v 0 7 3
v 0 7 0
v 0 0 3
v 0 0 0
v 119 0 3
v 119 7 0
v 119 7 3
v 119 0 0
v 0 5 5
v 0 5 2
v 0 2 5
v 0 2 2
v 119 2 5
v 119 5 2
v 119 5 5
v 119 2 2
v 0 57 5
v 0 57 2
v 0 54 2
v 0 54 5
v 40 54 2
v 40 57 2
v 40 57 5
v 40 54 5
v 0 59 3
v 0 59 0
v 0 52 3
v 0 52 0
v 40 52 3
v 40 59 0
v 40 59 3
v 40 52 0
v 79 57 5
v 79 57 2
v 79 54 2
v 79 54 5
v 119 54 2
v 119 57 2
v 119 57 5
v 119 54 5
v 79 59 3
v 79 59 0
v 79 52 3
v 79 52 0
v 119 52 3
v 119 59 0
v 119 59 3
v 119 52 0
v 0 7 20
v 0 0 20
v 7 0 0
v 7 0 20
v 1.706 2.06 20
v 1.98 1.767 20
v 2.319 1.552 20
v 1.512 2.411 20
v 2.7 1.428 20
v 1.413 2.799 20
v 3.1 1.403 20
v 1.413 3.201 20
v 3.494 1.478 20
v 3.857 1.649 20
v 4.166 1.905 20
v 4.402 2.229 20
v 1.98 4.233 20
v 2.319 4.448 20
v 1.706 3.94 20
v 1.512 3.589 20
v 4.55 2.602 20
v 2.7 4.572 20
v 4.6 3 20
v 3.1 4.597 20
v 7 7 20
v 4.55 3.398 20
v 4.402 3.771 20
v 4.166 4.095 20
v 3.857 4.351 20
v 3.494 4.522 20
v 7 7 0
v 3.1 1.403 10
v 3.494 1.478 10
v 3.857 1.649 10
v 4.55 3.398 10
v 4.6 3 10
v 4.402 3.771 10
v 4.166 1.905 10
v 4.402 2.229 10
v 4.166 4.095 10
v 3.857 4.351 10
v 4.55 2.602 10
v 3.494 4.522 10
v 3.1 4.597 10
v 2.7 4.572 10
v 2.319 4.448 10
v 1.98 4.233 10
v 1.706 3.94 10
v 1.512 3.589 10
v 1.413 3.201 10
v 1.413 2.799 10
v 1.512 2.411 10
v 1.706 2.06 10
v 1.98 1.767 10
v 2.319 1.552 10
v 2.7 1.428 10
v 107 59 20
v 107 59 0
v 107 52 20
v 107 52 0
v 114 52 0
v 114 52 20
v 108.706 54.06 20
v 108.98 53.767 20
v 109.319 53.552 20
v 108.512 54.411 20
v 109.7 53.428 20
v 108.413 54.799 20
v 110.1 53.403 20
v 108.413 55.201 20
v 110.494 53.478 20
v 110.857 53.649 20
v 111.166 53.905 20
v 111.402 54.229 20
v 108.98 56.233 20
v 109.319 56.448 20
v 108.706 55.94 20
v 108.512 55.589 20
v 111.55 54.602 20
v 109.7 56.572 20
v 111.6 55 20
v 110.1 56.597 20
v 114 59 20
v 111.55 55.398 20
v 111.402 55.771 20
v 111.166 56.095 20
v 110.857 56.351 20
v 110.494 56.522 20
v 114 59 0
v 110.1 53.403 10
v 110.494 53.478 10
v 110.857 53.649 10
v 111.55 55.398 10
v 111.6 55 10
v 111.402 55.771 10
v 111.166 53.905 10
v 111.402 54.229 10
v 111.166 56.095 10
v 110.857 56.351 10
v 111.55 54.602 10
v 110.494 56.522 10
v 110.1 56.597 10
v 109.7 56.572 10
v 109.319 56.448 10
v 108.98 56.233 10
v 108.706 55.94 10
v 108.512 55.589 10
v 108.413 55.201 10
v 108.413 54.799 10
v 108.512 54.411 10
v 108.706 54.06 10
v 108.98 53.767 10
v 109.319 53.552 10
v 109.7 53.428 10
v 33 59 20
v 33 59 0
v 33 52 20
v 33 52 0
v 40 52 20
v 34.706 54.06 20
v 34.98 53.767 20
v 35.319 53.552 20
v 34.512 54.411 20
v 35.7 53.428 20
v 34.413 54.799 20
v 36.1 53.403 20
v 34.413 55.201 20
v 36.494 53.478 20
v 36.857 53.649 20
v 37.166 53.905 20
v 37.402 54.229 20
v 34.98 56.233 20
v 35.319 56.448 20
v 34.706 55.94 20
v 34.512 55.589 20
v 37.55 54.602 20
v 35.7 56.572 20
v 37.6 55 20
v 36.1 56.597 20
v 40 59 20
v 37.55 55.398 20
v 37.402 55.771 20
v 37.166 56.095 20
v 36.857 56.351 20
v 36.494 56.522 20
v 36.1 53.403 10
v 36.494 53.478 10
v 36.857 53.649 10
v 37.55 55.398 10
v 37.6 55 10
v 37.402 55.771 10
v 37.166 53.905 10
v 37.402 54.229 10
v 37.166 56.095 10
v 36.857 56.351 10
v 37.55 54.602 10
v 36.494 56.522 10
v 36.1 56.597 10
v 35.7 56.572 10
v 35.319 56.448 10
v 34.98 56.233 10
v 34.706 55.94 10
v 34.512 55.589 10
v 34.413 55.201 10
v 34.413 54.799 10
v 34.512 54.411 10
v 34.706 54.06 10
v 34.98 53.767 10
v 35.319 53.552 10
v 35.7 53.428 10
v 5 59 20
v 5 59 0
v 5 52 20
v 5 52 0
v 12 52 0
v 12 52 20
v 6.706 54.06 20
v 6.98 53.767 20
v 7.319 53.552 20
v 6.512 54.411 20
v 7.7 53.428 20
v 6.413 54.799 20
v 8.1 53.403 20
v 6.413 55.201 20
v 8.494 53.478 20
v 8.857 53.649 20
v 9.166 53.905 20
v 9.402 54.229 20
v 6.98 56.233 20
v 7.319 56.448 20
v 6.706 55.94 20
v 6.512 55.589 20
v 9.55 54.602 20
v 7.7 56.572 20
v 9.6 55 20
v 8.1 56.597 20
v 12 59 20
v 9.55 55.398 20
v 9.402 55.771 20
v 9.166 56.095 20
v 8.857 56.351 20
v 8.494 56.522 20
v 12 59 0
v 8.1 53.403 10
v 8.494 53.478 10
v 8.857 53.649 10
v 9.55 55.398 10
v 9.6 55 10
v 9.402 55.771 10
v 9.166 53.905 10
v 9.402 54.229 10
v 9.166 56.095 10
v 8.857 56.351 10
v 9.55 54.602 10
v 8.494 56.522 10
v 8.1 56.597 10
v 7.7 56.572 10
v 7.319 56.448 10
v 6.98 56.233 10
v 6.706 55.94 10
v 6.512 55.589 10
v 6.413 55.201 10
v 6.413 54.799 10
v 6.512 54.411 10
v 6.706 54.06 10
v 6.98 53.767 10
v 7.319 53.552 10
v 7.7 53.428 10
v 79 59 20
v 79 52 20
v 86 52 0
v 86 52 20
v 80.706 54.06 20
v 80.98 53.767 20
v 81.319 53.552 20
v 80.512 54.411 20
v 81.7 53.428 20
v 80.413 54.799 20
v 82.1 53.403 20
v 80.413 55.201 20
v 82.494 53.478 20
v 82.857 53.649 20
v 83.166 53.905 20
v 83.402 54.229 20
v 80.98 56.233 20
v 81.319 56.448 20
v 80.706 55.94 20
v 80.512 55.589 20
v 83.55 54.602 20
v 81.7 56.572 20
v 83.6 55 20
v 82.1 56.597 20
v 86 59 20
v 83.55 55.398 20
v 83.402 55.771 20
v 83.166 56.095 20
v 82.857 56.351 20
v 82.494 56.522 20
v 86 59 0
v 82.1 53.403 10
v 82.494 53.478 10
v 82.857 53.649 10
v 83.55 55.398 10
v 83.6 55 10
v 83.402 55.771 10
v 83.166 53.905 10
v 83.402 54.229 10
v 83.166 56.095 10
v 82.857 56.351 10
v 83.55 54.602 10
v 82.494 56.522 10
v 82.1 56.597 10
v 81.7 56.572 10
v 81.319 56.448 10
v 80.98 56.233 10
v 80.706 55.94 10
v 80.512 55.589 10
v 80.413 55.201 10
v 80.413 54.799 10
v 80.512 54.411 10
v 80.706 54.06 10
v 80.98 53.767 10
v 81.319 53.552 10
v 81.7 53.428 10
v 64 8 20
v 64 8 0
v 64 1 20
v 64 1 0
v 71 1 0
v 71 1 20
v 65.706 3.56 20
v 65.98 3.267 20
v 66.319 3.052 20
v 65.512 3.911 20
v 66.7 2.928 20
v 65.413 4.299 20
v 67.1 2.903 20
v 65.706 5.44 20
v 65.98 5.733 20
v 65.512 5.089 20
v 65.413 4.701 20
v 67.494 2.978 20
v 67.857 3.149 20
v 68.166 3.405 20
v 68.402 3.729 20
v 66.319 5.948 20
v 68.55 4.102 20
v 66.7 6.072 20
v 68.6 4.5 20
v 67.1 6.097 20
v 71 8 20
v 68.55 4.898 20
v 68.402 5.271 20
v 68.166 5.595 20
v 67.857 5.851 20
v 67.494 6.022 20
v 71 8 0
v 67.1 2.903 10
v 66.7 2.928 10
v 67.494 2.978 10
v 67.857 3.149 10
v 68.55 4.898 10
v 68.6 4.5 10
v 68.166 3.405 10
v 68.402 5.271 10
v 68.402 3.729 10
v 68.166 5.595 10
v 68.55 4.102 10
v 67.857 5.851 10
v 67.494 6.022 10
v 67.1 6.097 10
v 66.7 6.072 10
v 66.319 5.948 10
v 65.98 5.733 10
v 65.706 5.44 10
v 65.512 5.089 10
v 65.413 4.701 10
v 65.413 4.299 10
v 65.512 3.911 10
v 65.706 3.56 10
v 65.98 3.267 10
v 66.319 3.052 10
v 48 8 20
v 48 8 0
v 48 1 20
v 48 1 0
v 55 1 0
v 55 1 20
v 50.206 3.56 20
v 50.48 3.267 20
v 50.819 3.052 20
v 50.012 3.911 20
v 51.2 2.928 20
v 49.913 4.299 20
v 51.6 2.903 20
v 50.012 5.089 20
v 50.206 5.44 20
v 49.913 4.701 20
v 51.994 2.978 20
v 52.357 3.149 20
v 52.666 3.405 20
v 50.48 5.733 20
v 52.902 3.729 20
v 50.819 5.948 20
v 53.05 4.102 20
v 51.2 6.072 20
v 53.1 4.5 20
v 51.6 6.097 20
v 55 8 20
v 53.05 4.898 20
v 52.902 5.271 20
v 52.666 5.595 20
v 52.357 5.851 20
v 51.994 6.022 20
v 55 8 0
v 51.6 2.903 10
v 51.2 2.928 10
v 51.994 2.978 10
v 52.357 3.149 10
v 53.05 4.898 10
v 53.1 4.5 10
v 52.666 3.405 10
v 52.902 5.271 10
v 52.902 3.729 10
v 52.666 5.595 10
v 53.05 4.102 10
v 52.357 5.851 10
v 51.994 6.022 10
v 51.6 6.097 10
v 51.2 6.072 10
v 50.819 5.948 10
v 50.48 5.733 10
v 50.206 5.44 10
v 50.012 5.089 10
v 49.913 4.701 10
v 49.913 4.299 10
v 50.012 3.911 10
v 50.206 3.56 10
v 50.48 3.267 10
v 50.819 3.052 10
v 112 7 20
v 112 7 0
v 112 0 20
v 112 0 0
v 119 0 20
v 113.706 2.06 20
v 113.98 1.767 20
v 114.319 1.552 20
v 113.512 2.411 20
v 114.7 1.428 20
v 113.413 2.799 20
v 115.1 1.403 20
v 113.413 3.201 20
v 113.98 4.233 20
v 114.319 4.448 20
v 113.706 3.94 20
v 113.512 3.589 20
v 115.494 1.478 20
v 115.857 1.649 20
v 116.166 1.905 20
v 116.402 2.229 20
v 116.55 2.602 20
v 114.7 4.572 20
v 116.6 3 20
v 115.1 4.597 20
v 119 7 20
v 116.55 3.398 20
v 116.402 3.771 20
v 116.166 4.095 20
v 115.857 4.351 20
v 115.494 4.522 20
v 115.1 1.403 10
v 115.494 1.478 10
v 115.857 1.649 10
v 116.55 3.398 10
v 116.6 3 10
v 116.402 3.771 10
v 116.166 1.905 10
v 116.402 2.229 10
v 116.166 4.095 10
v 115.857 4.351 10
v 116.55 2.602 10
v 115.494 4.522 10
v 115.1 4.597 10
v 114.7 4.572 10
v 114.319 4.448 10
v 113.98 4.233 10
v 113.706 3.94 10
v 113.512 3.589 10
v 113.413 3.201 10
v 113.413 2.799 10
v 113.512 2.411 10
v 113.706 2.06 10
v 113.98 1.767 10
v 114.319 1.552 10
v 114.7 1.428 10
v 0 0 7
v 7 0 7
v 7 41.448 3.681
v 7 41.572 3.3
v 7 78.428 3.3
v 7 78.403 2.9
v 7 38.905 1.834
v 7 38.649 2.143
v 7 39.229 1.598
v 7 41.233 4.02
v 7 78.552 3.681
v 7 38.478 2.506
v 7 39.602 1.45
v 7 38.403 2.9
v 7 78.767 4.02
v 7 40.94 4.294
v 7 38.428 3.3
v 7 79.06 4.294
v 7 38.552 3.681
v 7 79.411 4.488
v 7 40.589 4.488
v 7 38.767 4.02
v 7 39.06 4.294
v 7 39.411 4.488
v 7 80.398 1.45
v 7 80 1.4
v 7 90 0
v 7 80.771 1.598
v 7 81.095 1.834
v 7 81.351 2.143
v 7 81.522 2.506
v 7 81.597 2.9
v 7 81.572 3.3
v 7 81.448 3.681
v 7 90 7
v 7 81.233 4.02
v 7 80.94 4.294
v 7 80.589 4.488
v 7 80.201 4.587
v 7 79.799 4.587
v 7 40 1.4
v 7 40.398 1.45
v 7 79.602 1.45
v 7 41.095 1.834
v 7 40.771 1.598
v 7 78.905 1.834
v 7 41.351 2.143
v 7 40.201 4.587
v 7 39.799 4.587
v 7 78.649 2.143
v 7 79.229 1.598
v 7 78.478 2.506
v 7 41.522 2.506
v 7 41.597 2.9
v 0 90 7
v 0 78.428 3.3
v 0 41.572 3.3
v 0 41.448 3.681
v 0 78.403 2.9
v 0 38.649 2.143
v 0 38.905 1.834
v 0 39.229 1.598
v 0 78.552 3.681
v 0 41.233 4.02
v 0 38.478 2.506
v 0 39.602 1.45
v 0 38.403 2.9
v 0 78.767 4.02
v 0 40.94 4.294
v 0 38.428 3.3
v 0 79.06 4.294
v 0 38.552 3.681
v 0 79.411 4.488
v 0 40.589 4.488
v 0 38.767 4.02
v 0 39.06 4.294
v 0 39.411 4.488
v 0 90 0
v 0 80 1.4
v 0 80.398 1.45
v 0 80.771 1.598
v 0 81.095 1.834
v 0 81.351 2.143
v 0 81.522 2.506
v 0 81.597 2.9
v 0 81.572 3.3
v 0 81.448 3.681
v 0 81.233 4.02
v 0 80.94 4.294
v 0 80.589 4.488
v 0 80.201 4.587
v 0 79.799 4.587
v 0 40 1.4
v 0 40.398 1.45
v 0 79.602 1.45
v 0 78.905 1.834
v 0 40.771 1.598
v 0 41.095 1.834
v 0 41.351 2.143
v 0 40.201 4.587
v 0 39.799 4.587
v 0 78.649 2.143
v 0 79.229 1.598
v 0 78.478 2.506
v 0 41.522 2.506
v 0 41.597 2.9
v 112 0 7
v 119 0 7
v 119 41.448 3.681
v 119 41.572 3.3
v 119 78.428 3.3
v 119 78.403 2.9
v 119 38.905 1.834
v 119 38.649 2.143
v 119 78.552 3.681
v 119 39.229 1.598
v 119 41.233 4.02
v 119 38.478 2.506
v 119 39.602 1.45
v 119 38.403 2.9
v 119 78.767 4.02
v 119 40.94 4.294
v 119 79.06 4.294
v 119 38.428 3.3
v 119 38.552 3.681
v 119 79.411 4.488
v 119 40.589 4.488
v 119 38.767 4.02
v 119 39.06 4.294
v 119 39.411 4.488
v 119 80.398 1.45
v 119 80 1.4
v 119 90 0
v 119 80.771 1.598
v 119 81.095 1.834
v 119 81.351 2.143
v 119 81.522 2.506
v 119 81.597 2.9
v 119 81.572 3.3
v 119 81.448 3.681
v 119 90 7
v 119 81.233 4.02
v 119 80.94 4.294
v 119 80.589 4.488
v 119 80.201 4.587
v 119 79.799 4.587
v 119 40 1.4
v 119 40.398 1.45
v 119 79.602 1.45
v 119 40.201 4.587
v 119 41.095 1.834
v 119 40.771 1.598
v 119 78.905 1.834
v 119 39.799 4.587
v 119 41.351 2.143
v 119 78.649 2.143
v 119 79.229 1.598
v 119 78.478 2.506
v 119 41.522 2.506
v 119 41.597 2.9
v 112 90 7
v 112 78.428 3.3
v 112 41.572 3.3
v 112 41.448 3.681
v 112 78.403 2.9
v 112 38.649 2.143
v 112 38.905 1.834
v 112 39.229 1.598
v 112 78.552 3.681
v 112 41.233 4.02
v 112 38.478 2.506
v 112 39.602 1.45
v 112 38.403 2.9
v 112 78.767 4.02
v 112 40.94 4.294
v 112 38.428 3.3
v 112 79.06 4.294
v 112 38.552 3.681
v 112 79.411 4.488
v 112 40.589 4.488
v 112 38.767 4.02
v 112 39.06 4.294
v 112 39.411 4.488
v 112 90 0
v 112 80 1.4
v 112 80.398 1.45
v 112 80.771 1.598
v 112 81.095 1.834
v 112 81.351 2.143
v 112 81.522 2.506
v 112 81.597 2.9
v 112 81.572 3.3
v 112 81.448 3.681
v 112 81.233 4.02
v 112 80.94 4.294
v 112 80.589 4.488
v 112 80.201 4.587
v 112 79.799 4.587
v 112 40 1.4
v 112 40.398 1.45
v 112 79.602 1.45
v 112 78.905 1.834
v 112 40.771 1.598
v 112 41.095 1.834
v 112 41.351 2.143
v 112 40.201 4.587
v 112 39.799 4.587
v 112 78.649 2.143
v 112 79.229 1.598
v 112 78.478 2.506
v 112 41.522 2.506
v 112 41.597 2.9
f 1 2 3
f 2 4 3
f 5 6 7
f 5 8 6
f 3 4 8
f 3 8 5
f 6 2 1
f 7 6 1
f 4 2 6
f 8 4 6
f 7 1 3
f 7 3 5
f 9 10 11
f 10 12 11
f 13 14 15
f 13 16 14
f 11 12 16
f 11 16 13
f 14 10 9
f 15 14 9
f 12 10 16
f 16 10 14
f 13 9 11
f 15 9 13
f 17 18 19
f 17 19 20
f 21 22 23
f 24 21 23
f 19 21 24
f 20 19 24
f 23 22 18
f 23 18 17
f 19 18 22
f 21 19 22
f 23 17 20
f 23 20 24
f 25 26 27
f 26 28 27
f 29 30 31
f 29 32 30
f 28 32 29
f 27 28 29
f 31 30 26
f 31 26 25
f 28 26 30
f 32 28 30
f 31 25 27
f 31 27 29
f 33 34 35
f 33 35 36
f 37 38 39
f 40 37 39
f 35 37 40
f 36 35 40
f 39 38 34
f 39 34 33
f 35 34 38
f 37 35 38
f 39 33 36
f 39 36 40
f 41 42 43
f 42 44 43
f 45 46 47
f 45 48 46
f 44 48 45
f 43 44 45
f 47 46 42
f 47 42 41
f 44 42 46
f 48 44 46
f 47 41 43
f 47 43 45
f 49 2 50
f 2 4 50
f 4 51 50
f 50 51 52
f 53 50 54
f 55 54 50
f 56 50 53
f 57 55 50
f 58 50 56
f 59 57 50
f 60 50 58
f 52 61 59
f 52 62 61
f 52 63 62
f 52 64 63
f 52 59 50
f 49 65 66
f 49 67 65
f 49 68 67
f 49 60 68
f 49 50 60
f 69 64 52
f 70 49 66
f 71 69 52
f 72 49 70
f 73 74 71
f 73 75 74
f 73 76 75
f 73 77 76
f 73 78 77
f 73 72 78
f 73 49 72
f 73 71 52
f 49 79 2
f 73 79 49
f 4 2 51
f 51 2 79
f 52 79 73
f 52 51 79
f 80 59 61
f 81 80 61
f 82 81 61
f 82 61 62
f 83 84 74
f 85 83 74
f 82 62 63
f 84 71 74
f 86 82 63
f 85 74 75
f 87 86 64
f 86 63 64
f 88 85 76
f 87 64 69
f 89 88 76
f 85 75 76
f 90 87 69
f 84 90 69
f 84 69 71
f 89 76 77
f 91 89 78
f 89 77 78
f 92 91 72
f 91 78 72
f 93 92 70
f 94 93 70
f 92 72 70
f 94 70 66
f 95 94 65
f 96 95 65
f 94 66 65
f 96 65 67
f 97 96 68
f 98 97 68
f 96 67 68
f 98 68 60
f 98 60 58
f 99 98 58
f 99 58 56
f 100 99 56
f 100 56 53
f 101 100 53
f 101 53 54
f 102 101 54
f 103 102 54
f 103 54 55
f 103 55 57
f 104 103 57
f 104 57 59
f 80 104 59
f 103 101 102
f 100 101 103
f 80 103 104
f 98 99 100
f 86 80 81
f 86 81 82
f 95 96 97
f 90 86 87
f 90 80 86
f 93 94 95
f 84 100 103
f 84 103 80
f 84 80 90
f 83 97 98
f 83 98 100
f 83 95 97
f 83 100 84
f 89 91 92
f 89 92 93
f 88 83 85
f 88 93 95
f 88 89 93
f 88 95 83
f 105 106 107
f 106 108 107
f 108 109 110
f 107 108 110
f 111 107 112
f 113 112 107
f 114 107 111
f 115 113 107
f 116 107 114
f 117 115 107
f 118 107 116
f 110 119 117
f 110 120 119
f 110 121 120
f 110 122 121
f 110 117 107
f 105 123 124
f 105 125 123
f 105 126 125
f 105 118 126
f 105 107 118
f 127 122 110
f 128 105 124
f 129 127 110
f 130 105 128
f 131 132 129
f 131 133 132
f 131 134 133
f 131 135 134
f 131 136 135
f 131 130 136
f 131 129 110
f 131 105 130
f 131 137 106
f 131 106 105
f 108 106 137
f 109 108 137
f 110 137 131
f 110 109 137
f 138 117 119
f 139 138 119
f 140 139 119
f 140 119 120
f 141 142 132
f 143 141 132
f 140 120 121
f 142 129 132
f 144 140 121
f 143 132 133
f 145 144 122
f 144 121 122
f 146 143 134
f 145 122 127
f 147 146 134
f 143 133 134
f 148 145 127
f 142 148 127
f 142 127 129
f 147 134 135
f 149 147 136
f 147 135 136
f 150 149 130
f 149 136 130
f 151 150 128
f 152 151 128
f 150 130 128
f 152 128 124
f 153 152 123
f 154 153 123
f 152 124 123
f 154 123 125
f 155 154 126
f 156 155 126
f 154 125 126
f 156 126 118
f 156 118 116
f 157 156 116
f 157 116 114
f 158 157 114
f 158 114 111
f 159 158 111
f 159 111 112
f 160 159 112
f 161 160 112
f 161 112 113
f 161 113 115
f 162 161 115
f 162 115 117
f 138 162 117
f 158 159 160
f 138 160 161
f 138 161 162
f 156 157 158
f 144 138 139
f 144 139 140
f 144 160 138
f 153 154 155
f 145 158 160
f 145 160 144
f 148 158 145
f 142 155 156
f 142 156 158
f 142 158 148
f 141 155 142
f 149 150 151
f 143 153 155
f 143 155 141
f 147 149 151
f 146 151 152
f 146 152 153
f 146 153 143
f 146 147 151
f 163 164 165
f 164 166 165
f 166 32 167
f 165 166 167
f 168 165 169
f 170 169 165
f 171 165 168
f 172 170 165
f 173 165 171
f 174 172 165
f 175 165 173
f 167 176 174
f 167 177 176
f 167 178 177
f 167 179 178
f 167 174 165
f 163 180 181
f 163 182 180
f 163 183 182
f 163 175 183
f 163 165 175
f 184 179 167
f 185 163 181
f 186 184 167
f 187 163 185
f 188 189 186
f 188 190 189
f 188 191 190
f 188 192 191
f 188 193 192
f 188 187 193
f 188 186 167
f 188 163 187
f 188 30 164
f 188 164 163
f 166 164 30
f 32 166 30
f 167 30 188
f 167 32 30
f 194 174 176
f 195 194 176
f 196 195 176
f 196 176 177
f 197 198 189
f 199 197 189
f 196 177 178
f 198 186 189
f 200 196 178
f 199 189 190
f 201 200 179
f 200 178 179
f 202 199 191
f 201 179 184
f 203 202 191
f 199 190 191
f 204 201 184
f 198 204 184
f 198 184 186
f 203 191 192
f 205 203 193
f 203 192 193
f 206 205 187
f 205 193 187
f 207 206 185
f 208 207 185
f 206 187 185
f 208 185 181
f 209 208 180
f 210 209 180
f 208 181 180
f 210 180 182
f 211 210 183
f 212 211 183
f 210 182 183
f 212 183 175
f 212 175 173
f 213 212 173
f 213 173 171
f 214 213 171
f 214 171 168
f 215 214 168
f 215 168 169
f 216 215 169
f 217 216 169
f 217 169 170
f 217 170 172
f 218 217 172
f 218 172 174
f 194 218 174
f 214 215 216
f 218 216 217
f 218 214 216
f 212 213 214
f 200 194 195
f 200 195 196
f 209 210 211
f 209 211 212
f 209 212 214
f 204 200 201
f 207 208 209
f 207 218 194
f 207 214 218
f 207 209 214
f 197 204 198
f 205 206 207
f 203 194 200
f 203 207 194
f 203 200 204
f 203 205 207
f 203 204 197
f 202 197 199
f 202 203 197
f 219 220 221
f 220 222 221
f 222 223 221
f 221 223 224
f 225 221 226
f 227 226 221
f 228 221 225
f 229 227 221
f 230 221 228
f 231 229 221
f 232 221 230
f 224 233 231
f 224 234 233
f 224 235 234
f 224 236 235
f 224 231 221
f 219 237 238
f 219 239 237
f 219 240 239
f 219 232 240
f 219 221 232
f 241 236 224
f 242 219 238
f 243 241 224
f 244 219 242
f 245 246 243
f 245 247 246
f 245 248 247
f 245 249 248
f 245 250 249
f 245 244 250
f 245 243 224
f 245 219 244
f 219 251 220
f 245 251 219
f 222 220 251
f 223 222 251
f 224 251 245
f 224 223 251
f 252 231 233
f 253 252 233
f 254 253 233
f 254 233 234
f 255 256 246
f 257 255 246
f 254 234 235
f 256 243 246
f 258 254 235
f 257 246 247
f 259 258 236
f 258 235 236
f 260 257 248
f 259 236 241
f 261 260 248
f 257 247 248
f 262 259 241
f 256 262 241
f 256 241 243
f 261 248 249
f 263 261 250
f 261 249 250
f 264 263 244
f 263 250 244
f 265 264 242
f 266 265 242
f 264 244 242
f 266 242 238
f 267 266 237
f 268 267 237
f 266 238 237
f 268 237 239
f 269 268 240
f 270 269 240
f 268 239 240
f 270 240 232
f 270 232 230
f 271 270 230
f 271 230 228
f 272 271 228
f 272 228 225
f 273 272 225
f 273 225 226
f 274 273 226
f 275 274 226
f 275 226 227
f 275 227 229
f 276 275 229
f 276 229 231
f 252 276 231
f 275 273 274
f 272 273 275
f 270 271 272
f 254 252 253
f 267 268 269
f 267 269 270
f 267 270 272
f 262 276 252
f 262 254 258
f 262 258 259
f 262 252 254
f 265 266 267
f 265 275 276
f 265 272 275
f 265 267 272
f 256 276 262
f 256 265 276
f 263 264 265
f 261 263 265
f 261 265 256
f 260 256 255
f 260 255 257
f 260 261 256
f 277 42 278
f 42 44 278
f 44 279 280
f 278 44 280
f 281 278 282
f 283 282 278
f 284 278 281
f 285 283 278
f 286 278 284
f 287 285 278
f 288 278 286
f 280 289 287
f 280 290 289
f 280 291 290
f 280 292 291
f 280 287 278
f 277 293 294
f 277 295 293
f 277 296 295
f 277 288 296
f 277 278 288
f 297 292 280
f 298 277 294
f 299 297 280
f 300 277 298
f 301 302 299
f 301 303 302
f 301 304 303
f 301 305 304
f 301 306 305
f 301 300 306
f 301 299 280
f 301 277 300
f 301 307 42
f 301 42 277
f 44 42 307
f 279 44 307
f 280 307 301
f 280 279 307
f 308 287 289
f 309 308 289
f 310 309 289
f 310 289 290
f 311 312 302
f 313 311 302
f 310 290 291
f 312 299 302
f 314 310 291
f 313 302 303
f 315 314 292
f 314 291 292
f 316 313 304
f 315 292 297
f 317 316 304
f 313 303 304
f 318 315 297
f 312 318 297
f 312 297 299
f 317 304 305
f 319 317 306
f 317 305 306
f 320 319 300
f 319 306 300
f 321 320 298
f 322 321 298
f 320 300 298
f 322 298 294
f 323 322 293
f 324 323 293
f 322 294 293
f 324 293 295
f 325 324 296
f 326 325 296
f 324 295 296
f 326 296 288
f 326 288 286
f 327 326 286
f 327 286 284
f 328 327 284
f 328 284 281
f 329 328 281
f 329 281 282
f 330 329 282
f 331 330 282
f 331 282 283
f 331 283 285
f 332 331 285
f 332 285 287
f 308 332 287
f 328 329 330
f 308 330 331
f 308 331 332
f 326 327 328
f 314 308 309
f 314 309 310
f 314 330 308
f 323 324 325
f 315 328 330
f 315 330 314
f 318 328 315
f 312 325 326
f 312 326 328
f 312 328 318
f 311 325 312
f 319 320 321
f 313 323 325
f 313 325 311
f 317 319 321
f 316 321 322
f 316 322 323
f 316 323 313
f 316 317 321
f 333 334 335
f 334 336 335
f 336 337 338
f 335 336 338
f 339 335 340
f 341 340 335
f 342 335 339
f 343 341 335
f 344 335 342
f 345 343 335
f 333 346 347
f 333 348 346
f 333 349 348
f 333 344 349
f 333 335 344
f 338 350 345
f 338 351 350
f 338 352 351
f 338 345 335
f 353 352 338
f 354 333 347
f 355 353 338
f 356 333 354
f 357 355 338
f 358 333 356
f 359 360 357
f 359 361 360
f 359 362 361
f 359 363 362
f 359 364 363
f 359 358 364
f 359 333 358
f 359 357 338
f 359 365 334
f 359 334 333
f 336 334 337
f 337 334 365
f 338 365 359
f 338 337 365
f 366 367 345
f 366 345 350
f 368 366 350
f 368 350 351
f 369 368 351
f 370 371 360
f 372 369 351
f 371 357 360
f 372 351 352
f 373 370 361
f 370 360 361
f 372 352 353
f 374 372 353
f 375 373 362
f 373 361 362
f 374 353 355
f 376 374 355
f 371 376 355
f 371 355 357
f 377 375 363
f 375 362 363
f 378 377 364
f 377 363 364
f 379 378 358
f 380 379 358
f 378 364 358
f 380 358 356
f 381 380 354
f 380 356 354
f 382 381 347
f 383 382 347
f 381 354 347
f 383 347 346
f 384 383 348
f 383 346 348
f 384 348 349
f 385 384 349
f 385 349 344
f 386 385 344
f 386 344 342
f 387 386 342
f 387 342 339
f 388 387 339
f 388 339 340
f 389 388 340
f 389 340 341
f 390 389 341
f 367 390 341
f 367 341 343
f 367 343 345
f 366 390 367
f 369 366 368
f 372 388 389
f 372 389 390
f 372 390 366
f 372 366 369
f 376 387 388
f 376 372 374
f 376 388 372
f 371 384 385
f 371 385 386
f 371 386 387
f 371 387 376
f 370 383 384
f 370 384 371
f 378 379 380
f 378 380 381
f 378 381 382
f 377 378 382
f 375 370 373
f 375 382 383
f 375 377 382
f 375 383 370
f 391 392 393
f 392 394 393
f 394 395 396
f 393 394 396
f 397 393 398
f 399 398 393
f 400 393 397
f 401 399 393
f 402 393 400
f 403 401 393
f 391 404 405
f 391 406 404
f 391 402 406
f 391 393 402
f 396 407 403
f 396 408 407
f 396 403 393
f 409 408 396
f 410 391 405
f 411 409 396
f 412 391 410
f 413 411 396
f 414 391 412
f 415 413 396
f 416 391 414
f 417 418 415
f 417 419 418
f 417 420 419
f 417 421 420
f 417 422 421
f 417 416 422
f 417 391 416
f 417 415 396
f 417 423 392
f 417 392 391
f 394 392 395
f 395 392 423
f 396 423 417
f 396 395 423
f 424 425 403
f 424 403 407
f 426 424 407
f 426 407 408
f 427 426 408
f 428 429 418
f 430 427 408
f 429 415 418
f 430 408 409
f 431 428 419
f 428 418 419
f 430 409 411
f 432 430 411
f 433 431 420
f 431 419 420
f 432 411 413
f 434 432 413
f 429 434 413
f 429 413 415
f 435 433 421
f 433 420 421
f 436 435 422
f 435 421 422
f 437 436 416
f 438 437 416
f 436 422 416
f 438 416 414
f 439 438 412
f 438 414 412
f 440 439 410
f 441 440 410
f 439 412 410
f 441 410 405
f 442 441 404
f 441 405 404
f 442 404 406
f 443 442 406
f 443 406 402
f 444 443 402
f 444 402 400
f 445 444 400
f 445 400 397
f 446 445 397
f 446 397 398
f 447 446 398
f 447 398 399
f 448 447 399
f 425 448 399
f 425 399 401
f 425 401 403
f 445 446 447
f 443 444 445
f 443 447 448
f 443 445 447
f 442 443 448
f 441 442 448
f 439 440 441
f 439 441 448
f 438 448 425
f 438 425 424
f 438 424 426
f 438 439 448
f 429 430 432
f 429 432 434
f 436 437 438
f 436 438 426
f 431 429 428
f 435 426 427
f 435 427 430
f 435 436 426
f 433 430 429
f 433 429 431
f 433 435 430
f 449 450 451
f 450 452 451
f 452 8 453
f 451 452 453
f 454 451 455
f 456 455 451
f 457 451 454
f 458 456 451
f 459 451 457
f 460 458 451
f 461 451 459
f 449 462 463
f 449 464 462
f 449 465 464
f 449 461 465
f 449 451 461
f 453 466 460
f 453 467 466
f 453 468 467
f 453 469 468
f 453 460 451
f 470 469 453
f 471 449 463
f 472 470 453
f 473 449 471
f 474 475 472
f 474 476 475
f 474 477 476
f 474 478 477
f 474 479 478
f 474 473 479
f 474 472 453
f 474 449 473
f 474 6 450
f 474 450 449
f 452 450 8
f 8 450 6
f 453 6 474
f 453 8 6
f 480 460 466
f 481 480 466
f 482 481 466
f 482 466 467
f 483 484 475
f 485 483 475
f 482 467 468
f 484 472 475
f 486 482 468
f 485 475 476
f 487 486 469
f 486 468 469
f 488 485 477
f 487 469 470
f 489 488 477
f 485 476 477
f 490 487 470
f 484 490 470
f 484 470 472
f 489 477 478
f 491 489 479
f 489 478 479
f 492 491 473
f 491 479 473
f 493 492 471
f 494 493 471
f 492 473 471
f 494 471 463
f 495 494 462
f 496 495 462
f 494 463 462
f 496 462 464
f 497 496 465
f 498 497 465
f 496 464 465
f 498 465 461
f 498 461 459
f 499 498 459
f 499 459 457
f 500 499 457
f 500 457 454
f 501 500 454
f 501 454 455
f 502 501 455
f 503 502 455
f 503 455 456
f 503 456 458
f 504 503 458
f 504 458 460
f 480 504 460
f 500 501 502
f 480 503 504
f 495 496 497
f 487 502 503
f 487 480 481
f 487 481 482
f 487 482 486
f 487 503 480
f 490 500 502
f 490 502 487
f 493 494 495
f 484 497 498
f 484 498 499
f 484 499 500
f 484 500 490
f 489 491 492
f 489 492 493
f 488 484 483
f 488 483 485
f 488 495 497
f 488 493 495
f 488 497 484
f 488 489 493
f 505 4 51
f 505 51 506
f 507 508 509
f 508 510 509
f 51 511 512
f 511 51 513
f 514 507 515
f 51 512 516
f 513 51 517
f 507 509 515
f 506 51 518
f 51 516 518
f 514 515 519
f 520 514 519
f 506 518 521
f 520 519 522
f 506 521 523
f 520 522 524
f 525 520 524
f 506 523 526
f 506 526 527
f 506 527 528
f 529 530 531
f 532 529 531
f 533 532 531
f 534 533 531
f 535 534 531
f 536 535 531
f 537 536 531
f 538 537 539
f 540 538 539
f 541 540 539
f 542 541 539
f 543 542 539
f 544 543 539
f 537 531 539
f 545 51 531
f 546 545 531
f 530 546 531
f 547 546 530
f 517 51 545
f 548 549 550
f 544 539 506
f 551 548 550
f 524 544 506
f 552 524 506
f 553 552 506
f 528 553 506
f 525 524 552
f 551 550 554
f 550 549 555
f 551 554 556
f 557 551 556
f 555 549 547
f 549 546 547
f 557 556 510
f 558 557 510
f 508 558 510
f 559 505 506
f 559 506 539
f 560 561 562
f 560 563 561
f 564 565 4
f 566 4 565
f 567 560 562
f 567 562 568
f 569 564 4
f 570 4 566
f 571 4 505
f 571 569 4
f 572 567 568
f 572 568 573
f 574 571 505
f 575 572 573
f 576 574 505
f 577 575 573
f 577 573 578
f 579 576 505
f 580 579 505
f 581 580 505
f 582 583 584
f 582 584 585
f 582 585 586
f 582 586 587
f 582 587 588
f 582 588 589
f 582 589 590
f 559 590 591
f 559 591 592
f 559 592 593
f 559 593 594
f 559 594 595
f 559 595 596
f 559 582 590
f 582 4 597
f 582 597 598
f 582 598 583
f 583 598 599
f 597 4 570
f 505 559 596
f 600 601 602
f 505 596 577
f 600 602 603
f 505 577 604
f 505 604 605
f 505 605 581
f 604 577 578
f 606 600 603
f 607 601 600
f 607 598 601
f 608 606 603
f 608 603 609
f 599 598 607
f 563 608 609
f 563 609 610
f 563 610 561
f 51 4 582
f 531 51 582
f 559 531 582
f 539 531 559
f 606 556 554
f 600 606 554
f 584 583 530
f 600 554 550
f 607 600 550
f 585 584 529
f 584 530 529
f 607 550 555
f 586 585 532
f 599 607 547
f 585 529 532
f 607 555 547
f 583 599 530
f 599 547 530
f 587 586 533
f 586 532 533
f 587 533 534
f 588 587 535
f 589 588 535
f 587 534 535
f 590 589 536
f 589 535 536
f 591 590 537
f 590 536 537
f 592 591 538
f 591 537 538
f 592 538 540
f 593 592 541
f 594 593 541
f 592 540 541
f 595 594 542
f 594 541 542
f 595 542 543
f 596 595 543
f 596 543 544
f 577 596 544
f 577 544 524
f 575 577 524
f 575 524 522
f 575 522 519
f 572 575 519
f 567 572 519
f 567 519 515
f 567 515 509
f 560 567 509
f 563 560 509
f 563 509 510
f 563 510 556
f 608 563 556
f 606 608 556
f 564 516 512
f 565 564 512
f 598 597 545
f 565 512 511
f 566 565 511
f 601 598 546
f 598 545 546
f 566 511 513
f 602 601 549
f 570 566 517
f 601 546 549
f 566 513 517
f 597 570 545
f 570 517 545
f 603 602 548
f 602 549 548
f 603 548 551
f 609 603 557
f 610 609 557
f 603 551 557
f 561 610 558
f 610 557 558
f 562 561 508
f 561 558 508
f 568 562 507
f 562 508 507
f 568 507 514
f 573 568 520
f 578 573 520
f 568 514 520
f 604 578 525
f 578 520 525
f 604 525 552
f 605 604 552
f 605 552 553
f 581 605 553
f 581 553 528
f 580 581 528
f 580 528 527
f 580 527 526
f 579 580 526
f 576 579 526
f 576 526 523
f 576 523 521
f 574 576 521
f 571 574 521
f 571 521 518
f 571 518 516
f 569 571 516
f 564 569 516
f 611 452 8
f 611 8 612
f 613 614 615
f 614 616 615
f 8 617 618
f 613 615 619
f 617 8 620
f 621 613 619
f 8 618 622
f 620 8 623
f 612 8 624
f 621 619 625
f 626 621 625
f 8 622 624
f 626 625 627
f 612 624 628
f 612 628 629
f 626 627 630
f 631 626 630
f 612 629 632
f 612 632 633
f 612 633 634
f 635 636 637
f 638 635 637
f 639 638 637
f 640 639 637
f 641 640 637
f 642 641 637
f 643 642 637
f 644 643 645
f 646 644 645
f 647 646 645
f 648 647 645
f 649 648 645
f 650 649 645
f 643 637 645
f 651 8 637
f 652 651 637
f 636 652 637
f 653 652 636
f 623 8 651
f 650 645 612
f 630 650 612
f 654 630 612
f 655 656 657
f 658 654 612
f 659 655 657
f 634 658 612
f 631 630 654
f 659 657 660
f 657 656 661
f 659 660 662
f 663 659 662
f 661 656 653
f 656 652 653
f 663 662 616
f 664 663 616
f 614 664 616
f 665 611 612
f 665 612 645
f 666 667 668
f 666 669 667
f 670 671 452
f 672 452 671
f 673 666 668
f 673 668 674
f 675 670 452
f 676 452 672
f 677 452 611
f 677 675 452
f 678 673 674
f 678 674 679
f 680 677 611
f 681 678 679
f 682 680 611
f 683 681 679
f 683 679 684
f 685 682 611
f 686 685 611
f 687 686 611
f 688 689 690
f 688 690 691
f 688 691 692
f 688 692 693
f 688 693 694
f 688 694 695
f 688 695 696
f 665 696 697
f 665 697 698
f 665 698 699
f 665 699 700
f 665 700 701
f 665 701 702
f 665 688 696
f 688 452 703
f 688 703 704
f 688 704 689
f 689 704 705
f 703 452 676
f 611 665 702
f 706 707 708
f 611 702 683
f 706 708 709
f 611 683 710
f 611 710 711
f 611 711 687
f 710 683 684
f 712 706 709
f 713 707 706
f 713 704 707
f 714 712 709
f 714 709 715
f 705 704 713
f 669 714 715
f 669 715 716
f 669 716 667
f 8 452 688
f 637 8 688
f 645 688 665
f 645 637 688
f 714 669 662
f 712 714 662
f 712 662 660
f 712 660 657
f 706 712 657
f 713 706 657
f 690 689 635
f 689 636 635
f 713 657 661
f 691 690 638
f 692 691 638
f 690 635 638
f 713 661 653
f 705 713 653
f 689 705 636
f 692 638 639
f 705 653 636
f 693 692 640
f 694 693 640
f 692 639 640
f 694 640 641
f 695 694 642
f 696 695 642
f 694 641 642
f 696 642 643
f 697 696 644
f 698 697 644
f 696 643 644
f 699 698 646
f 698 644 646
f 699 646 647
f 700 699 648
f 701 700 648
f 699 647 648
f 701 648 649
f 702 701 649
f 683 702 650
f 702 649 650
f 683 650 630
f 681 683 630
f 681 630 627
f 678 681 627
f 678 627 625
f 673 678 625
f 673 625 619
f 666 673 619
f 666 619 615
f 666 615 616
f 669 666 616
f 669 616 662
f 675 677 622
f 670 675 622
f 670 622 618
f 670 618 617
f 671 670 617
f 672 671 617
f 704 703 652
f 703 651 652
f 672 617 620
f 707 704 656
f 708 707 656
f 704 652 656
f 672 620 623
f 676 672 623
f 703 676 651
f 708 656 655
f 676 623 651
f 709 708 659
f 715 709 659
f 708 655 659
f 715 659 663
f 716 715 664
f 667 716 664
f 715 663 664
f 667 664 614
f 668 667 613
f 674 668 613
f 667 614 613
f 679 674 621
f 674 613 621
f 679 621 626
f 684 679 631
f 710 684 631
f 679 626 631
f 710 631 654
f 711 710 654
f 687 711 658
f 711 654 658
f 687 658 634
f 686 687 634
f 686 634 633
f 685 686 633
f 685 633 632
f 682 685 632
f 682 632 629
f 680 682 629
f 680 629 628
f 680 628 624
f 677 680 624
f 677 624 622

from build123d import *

# Parameters (mm, degrees)
BOX_W                   = 119
BOX_H                   = 7
BOX_DEPTH               = 3
BOX001_W                = 119
BOX001_H                = 3
BOX001_DEPTH            = 3
BOX010_W                = 40
BOX010_H                = 3
BOX010_DEPTH            = 3
BOX011_W                = 40
BOX011_H                = 7
BOX011_DEPTH            = 3
BOX012_W                = 40
BOX012_H                = 3
BOX012_DEPTH            = 3
BOX013_W                = 40
BOX013_H                = 7
BOX013_DEPTH            = 3
CYLINDER_R              = 1.6
CYLINDER_DEPTH          = 20
BOX002_W                = 7
BOX002_H                = 7
BOX002_DEPTH            = 20
CYLINDER004_R           = 1.6
CYLINDER004_DEPTH       = 20
BOX014_W                = 7
BOX014_H                = 7
BOX014_DEPTH            = 20
CYLINDER002_R           = 1.6
CYLINDER002_DEPTH       = 20
BOX015_W                = 7
BOX015_H                = 7
BOX015_DEPTH            = 20
CYLINDER001_R           = 1.6
CYLINDER001_DEPTH       = 20
BOX016_W                = 7
BOX016_H                = 7
BOX016_DEPTH            = 20
CYLINDER003_R           = 1.6
CYLINDER003_DEPTH       = 20
BOX017_W                = 7
BOX017_H                = 7
BOX017_DEPTH            = 20
CYLINDER006_R           = 1.6
CYLINDER006_DEPTH       = 20
BOX005_W                = 7
BOX005_H                = 7
BOX005_DEPTH            = 20
CYLINDER007_R           = 1.6
CYLINDER007_DEPTH       = 20
BOX004_W                = 7
BOX004_H                = 7
BOX004_DEPTH            = 20
CYLINDER005_R           = 1.6
CYLINDER005_DEPTH       = 20
BOX003_W                = 7
BOX003_H                = 7
BOX003_DEPTH            = 20
CYLINDER009_R           = 1.6
CYLINDER009_DEPTH       = 20
CYLINDER009_PITCH_ANGLE = 90
CYLINDER008_R           = 1.6
CYLINDER008_DEPTH       = 20
CYLINDER008_PITCH_ANGLE = 90
BOX006_W                = 90
BOX006_H                = 7
BOX006_DEPTH            = 7
BOX006_PLACEMENT_ANGLE  = 90
CYLINDER011_R           = 1.6
CYLINDER011_DEPTH       = 20
CYLINDER011_PITCH_ANGLE = 90
CYLINDER010_R           = 1.6
CYLINDER010_DEPTH       = 20
CYLINDER010_PITCH_ANGLE = 90
BOX007_W                = 90
BOX007_H                = 7
BOX007_DEPTH            = 7
BOX007_PLACEMENT_ANGLE  = 90


with BuildPart() as cube:
    # Box → Box (new body)
    with BuildSketch(Plane.XY):
        with Locations((59.5, 3.5)):
            Rectangle(BOX_W, BOX_H)
    extrude(amount=BOX_DEPTH)


with BuildPart() as cube001:
    # Box001 → Box001 (new body)
    with BuildSketch(Plane(origin=(0, 2, 2), x_dir=(1, 0, 0), z_dir=(0, 0, 1))):
        with Locations((59.5, 1.5)):
            Rectangle(BOX001_W, BOX001_H)
    extrude(amount=BOX001_DEPTH)


with BuildPart() as cube010:
    # Box010 → Box010 (new body)
    with BuildSketch(Plane(origin=(0, 54, 2), x_dir=(1, 0, 0), z_dir=(0, 0, 1))):
        with Locations((20, 1.5)):
            Rectangle(BOX010_W, BOX010_H)
    extrude(amount=BOX010_DEPTH)


with BuildPart() as cube011:
    # Box011 → Box011 (new body)
    with BuildSketch(Plane(origin=(0, 52, 0), x_dir=(1, 0, 0), z_dir=(0, 0, 1))):
        with Locations((20, 3.5)):
            Rectangle(BOX011_W, BOX011_H)
    extrude(amount=BOX011_DEPTH)


with BuildPart() as cube012:
    # Box012 → Box012 (new body)
    with BuildSketch(Plane(origin=(79, 54, 2), x_dir=(1, 0, 0), z_dir=(0, 0, 1))):
        with Locations((20, 1.5)):
            Rectangle(BOX012_W, BOX012_H)
    extrude(amount=BOX012_DEPTH)


with BuildPart() as cube013:
    # Box013 → Box013 (new body)
    with BuildSketch(Plane(origin=(79, 52, 0), x_dir=(1, 0, 0), z_dir=(0, 0, 1))):
        with Locations((20, 3.5)):
            Rectangle(BOX013_W, BOX013_H)
    extrude(amount=BOX013_DEPTH)


with BuildPart() as cylindre:
    # Cylinder → Cylinder (new body)
    with BuildSketch(Plane(origin=(3, 3, 10), x_dir=(1, 0, 0), z_dir=(0, 0, 1))):
        Circle(CYLINDER_R)
    extrude(amount=CYLINDER_DEPTH)


with BuildPart() as cut:
    # Box002 → Box002 (new body)
    with BuildSketch(Plane.XY):
        with Locations((3.5, 3.5)):
            Rectangle(BOX002_W, BOX002_H)
    extrude(amount=BOX002_DEPTH)

    # Cut: cut Cylindre
    add(cylindre.part, mode=Mode.SUBTRACT)


with BuildPart() as cylindre004:
    # Cylinder004 → Cylinder004 (new body)
    with BuildSketch(Plane(origin=(110, 55, 10), x_dir=(1, 0, 0), z_dir=(0, 0, 1))):
        Circle(CYLINDER004_R)
    extrude(amount=CYLINDER004_DEPTH)


with BuildPart() as cut001:
    # Box014 → Box014 (new body)
    with BuildSketch(Plane(origin=(107, 52, 0), x_dir=(1, 0, 0), z_dir=(0, 0, 1))):
        with Locations((3.5, 3.5)):
            Rectangle(BOX014_W, BOX014_H)
    extrude(amount=BOX014_DEPTH)

    # Cut001: cut Cylindre004
    add(cylindre004.part, mode=Mode.SUBTRACT)


with BuildPart() as cylindre002:
    # Cylinder002 → Cylinder002 (new body)
    with BuildSketch(Plane(origin=(36, 55, 10), x_dir=(1, 0, 0), z_dir=(0, 0, 1))):
        Circle(CYLINDER002_R)
    extrude(amount=CYLINDER002_DEPTH)


with BuildPart() as cut002:
    # Box015 → Box015 (new body)
    with BuildSketch(Plane(origin=(33, 52, 0), x_dir=(1, 0, 0), z_dir=(0, 0, 1))):
        with Locations((3.5, 3.5)):
            Rectangle(BOX015_W, BOX015_H)
    extrude(amount=BOX015_DEPTH)

    # Cut002: cut Cylindre002
    add(cylindre002.part, mode=Mode.SUBTRACT)


with BuildPart() as cylindre001:
    # Cylinder001 → Cylinder001 (new body)
    with BuildSketch(Plane(origin=(8, 55, 10), x_dir=(1, 0, 0), z_dir=(0, 0, 1))):
        Circle(CYLINDER001_R)
    extrude(amount=CYLINDER001_DEPTH)


with BuildPart() as cut003:
    # Box016 → Box016 (new body)
    with BuildSketch(Plane(origin=(5, 52, 0), x_dir=(1, 0, 0), z_dir=(0, 0, 1))):
        with Locations((3.5, 3.5)):
            Rectangle(BOX016_W, BOX016_H)
    extrude(amount=BOX016_DEPTH)

    # Cut003: cut Cylindre001
    add(cylindre001.part, mode=Mode.SUBTRACT)


with BuildPart() as cylindre003:
    # Cylinder003 → Cylinder003 (new body)
    with BuildSketch(Plane(origin=(82, 55, 10), x_dir=(1, 0, 0), z_dir=(0, 0, 1))):
        Circle(CYLINDER003_R)
    extrude(amount=CYLINDER003_DEPTH)


with BuildPart() as cut004:
    # Box017 → Box017 (new body)
    with BuildSketch(Plane(origin=(79, 52, 0), x_dir=(1, 0, 0), z_dir=(0, 0, 1))):
        with Locations((3.5, 3.5)):
            Rectangle(BOX017_W, BOX017_H)
    extrude(amount=BOX017_DEPTH)

    # Cut004: cut Cylindre003
    add(cylindre003.part, mode=Mode.SUBTRACT)


with BuildPart() as cylindre006:
    # Cylinder006 → Cylinder006 (new body)
    with BuildSketch(Plane(origin=(67, 4.5, 10), x_dir=(1, 0, 0), z_dir=(0, 0, 1))):
        Circle(CYLINDER006_R)
    extrude(amount=CYLINDER006_DEPTH)


with BuildPart() as cut005:
    # Box005 → Box005 (new body)
    with BuildSketch(Plane(origin=(64, 1, 0), x_dir=(1, 0, 0), z_dir=(0, 0, 1))):
        with Locations((3.5, 3.5)):
            Rectangle(BOX005_W, BOX005_H)
    extrude(amount=BOX005_DEPTH)

    # Cut005: cut Cylindre006
    add(cylindre006.part, mode=Mode.SUBTRACT)


with BuildPart() as cylindre007:
    # Cylinder007 → Cylinder007 (new body)
    with BuildSketch(Plane(origin=(51.5, 4.5, 10), x_dir=(1, 0, 0), z_dir=(0, 0, 1))):
        Circle(CYLINDER007_R)
    extrude(amount=CYLINDER007_DEPTH)


with BuildPart() as cut006:
    # Box004 → Box004 (new body)
    with BuildSketch(Plane(origin=(48, 1, 0), x_dir=(1, 0, 0), z_dir=(0, 0, 1))):
        with Locations((3.5, 3.5)):
            Rectangle(BOX004_W, BOX004_H)
    extrude(amount=BOX004_DEPTH)

    # Cut006: cut Cylindre007
    add(cylindre007.part, mode=Mode.SUBTRACT)


with BuildPart() as cylindre005:
    # Cylinder005 → Cylinder005 (new body)
    with BuildSketch(Plane(origin=(115, 3, 10), x_dir=(1, 0, 0), z_dir=(0, 0, 1))):
        Circle(CYLINDER005_R)
    extrude(amount=CYLINDER005_DEPTH)


with BuildPart() as cut007:
    # Box003 → Box003 (new body)
    with BuildSketch(Plane(origin=(112, 0, 0), x_dir=(1, 0, 0), z_dir=(0, 0, 1))):
        with Locations((3.5, 3.5)):
            Rectangle(BOX003_W, BOX003_H)
    extrude(amount=BOX003_DEPTH)

    # Cut007: cut Cylindre005
    add(cylindre005.part, mode=Mode.SUBTRACT)


with BuildPart() as cylindre009:
    # Cylinder009 → Cylinder009 (new body)
    with BuildSketch(Plane.XY):
        Circle(CYLINDER009_R)
    extrude(amount=CYLINDER009_DEPTH)


with BuildPart() as cylindre009_1:
    # Cylinder009 pitch: moved
    add(cylindre009.part.rotate(Axis((0, 0, 0), (0, 1, 0)), CYLINDER009_PITCH_ANGLE))


with BuildPart() as cylindre009_2:
    # Cylinder009 placement: moved
    add(cylindre009_1.part.moved(Location((-4, 80, 3))))


with BuildPart() as cylindre008:
    # Cylinder008 → Cylinder008 (new body)
    with BuildSketch(Plane.XY):
        Circle(CYLINDER008_R)
    extrude(amount=CYLINDER008_DEPTH)


with BuildPart() as cylindre008_1:
    # Cylinder008 pitch: moved
    add(cylindre008.part.rotate(Axis((0, 0, 0), (0, 1, 0)), CYLINDER008_PITCH_ANGLE))


with BuildPart() as cylindre008_2:
    # Cylinder008 placement: moved
    add(cylindre008_1.part.moved(Location((-4, 40, 3))))


with BuildPart() as cut009:
    # Box006 → Box006 (new body)
    with BuildSketch(Plane.XY):
        with Locations((45, 3.5)):
            Rectangle(BOX006_W, BOX006_H)
    extrude(amount=BOX006_DEPTH)


with BuildPart() as cut009_1:
    # Box006 placement: moved
    add(cut009.part.moved(Location((7, 0, 0))).rotate(Axis((7, 0, 0), (0, 0, 1)), BOX006_PLACEMENT_ANGLE))

    # Cut008: cut Cylindre008
    add(cylindre008_2.part, mode=Mode.SUBTRACT)

    # Cut009: cut Cylindre009
    add(cylindre009_2.part, mode=Mode.SUBTRACT)


with BuildPart() as cylindre011:
    # Cylinder011 → Cylinder011 (new body)
    with BuildSketch(Plane.XY):
        Circle(CYLINDER011_R)
    extrude(amount=CYLINDER011_DEPTH)


with BuildPart() as cylindre011_1:
    # Cylinder011 pitch: moved
    add(cylindre011.part.rotate(Axis((0, 0, 0), (0, 1, 0)), CYLINDER011_PITCH_ANGLE))


with BuildPart() as cylindre011_2:
    # Cylinder011 placement: moved
    add(cylindre011_1.part.moved(Location((105, 80, 3))))


with BuildPart() as cylindre010:
    # Cylinder010 → Cylinder010 (new body)
    with BuildSketch(Plane.XY):
        Circle(CYLINDER010_R)
    extrude(amount=CYLINDER010_DEPTH)


with BuildPart() as cylindre010_1:
    # Cylinder010 pitch: moved
    add(cylindre010.part.rotate(Axis((0, 0, 0), (0, 1, 0)), CYLINDER010_PITCH_ANGLE))


with BuildPart() as cylindre010_2:
    # Cylinder010 placement: moved
    add(cylindre010_1.part.moved(Location((105, 40, 3))))


with BuildPart() as cut011:
    # Box007 → Box007 (new body)
    with BuildSketch(Plane.XY):
        with Locations((45, 3.5)):
            Rectangle(BOX007_W, BOX007_H)
    extrude(amount=BOX007_DEPTH)


with BuildPart() as cut011_1:
    # Box007 placement: moved
    add(cut011.part.moved(Location((119, 0, 0))).rotate(Axis((119, 0, 0), (0, 0, 1)), BOX007_PLACEMENT_ANGLE))

    # Cut010: cut Cylindre010
    add(cylindre010_2.part, mode=Mode.SUBTRACT)

    # Cut011: cut Cylindre011
    add(cylindre011_2.part, mode=Mode.SUBTRACT)


solid = Compound([cube.part, cube001.part, cube010.part, cube011.part, cube012.part, cube013.part, cut.part, cut001.part, cut002.part, cut003.part, cut004.part, cut005.part, cut006.part, cut007.part, cut009_1.part, cut011_1.part])
